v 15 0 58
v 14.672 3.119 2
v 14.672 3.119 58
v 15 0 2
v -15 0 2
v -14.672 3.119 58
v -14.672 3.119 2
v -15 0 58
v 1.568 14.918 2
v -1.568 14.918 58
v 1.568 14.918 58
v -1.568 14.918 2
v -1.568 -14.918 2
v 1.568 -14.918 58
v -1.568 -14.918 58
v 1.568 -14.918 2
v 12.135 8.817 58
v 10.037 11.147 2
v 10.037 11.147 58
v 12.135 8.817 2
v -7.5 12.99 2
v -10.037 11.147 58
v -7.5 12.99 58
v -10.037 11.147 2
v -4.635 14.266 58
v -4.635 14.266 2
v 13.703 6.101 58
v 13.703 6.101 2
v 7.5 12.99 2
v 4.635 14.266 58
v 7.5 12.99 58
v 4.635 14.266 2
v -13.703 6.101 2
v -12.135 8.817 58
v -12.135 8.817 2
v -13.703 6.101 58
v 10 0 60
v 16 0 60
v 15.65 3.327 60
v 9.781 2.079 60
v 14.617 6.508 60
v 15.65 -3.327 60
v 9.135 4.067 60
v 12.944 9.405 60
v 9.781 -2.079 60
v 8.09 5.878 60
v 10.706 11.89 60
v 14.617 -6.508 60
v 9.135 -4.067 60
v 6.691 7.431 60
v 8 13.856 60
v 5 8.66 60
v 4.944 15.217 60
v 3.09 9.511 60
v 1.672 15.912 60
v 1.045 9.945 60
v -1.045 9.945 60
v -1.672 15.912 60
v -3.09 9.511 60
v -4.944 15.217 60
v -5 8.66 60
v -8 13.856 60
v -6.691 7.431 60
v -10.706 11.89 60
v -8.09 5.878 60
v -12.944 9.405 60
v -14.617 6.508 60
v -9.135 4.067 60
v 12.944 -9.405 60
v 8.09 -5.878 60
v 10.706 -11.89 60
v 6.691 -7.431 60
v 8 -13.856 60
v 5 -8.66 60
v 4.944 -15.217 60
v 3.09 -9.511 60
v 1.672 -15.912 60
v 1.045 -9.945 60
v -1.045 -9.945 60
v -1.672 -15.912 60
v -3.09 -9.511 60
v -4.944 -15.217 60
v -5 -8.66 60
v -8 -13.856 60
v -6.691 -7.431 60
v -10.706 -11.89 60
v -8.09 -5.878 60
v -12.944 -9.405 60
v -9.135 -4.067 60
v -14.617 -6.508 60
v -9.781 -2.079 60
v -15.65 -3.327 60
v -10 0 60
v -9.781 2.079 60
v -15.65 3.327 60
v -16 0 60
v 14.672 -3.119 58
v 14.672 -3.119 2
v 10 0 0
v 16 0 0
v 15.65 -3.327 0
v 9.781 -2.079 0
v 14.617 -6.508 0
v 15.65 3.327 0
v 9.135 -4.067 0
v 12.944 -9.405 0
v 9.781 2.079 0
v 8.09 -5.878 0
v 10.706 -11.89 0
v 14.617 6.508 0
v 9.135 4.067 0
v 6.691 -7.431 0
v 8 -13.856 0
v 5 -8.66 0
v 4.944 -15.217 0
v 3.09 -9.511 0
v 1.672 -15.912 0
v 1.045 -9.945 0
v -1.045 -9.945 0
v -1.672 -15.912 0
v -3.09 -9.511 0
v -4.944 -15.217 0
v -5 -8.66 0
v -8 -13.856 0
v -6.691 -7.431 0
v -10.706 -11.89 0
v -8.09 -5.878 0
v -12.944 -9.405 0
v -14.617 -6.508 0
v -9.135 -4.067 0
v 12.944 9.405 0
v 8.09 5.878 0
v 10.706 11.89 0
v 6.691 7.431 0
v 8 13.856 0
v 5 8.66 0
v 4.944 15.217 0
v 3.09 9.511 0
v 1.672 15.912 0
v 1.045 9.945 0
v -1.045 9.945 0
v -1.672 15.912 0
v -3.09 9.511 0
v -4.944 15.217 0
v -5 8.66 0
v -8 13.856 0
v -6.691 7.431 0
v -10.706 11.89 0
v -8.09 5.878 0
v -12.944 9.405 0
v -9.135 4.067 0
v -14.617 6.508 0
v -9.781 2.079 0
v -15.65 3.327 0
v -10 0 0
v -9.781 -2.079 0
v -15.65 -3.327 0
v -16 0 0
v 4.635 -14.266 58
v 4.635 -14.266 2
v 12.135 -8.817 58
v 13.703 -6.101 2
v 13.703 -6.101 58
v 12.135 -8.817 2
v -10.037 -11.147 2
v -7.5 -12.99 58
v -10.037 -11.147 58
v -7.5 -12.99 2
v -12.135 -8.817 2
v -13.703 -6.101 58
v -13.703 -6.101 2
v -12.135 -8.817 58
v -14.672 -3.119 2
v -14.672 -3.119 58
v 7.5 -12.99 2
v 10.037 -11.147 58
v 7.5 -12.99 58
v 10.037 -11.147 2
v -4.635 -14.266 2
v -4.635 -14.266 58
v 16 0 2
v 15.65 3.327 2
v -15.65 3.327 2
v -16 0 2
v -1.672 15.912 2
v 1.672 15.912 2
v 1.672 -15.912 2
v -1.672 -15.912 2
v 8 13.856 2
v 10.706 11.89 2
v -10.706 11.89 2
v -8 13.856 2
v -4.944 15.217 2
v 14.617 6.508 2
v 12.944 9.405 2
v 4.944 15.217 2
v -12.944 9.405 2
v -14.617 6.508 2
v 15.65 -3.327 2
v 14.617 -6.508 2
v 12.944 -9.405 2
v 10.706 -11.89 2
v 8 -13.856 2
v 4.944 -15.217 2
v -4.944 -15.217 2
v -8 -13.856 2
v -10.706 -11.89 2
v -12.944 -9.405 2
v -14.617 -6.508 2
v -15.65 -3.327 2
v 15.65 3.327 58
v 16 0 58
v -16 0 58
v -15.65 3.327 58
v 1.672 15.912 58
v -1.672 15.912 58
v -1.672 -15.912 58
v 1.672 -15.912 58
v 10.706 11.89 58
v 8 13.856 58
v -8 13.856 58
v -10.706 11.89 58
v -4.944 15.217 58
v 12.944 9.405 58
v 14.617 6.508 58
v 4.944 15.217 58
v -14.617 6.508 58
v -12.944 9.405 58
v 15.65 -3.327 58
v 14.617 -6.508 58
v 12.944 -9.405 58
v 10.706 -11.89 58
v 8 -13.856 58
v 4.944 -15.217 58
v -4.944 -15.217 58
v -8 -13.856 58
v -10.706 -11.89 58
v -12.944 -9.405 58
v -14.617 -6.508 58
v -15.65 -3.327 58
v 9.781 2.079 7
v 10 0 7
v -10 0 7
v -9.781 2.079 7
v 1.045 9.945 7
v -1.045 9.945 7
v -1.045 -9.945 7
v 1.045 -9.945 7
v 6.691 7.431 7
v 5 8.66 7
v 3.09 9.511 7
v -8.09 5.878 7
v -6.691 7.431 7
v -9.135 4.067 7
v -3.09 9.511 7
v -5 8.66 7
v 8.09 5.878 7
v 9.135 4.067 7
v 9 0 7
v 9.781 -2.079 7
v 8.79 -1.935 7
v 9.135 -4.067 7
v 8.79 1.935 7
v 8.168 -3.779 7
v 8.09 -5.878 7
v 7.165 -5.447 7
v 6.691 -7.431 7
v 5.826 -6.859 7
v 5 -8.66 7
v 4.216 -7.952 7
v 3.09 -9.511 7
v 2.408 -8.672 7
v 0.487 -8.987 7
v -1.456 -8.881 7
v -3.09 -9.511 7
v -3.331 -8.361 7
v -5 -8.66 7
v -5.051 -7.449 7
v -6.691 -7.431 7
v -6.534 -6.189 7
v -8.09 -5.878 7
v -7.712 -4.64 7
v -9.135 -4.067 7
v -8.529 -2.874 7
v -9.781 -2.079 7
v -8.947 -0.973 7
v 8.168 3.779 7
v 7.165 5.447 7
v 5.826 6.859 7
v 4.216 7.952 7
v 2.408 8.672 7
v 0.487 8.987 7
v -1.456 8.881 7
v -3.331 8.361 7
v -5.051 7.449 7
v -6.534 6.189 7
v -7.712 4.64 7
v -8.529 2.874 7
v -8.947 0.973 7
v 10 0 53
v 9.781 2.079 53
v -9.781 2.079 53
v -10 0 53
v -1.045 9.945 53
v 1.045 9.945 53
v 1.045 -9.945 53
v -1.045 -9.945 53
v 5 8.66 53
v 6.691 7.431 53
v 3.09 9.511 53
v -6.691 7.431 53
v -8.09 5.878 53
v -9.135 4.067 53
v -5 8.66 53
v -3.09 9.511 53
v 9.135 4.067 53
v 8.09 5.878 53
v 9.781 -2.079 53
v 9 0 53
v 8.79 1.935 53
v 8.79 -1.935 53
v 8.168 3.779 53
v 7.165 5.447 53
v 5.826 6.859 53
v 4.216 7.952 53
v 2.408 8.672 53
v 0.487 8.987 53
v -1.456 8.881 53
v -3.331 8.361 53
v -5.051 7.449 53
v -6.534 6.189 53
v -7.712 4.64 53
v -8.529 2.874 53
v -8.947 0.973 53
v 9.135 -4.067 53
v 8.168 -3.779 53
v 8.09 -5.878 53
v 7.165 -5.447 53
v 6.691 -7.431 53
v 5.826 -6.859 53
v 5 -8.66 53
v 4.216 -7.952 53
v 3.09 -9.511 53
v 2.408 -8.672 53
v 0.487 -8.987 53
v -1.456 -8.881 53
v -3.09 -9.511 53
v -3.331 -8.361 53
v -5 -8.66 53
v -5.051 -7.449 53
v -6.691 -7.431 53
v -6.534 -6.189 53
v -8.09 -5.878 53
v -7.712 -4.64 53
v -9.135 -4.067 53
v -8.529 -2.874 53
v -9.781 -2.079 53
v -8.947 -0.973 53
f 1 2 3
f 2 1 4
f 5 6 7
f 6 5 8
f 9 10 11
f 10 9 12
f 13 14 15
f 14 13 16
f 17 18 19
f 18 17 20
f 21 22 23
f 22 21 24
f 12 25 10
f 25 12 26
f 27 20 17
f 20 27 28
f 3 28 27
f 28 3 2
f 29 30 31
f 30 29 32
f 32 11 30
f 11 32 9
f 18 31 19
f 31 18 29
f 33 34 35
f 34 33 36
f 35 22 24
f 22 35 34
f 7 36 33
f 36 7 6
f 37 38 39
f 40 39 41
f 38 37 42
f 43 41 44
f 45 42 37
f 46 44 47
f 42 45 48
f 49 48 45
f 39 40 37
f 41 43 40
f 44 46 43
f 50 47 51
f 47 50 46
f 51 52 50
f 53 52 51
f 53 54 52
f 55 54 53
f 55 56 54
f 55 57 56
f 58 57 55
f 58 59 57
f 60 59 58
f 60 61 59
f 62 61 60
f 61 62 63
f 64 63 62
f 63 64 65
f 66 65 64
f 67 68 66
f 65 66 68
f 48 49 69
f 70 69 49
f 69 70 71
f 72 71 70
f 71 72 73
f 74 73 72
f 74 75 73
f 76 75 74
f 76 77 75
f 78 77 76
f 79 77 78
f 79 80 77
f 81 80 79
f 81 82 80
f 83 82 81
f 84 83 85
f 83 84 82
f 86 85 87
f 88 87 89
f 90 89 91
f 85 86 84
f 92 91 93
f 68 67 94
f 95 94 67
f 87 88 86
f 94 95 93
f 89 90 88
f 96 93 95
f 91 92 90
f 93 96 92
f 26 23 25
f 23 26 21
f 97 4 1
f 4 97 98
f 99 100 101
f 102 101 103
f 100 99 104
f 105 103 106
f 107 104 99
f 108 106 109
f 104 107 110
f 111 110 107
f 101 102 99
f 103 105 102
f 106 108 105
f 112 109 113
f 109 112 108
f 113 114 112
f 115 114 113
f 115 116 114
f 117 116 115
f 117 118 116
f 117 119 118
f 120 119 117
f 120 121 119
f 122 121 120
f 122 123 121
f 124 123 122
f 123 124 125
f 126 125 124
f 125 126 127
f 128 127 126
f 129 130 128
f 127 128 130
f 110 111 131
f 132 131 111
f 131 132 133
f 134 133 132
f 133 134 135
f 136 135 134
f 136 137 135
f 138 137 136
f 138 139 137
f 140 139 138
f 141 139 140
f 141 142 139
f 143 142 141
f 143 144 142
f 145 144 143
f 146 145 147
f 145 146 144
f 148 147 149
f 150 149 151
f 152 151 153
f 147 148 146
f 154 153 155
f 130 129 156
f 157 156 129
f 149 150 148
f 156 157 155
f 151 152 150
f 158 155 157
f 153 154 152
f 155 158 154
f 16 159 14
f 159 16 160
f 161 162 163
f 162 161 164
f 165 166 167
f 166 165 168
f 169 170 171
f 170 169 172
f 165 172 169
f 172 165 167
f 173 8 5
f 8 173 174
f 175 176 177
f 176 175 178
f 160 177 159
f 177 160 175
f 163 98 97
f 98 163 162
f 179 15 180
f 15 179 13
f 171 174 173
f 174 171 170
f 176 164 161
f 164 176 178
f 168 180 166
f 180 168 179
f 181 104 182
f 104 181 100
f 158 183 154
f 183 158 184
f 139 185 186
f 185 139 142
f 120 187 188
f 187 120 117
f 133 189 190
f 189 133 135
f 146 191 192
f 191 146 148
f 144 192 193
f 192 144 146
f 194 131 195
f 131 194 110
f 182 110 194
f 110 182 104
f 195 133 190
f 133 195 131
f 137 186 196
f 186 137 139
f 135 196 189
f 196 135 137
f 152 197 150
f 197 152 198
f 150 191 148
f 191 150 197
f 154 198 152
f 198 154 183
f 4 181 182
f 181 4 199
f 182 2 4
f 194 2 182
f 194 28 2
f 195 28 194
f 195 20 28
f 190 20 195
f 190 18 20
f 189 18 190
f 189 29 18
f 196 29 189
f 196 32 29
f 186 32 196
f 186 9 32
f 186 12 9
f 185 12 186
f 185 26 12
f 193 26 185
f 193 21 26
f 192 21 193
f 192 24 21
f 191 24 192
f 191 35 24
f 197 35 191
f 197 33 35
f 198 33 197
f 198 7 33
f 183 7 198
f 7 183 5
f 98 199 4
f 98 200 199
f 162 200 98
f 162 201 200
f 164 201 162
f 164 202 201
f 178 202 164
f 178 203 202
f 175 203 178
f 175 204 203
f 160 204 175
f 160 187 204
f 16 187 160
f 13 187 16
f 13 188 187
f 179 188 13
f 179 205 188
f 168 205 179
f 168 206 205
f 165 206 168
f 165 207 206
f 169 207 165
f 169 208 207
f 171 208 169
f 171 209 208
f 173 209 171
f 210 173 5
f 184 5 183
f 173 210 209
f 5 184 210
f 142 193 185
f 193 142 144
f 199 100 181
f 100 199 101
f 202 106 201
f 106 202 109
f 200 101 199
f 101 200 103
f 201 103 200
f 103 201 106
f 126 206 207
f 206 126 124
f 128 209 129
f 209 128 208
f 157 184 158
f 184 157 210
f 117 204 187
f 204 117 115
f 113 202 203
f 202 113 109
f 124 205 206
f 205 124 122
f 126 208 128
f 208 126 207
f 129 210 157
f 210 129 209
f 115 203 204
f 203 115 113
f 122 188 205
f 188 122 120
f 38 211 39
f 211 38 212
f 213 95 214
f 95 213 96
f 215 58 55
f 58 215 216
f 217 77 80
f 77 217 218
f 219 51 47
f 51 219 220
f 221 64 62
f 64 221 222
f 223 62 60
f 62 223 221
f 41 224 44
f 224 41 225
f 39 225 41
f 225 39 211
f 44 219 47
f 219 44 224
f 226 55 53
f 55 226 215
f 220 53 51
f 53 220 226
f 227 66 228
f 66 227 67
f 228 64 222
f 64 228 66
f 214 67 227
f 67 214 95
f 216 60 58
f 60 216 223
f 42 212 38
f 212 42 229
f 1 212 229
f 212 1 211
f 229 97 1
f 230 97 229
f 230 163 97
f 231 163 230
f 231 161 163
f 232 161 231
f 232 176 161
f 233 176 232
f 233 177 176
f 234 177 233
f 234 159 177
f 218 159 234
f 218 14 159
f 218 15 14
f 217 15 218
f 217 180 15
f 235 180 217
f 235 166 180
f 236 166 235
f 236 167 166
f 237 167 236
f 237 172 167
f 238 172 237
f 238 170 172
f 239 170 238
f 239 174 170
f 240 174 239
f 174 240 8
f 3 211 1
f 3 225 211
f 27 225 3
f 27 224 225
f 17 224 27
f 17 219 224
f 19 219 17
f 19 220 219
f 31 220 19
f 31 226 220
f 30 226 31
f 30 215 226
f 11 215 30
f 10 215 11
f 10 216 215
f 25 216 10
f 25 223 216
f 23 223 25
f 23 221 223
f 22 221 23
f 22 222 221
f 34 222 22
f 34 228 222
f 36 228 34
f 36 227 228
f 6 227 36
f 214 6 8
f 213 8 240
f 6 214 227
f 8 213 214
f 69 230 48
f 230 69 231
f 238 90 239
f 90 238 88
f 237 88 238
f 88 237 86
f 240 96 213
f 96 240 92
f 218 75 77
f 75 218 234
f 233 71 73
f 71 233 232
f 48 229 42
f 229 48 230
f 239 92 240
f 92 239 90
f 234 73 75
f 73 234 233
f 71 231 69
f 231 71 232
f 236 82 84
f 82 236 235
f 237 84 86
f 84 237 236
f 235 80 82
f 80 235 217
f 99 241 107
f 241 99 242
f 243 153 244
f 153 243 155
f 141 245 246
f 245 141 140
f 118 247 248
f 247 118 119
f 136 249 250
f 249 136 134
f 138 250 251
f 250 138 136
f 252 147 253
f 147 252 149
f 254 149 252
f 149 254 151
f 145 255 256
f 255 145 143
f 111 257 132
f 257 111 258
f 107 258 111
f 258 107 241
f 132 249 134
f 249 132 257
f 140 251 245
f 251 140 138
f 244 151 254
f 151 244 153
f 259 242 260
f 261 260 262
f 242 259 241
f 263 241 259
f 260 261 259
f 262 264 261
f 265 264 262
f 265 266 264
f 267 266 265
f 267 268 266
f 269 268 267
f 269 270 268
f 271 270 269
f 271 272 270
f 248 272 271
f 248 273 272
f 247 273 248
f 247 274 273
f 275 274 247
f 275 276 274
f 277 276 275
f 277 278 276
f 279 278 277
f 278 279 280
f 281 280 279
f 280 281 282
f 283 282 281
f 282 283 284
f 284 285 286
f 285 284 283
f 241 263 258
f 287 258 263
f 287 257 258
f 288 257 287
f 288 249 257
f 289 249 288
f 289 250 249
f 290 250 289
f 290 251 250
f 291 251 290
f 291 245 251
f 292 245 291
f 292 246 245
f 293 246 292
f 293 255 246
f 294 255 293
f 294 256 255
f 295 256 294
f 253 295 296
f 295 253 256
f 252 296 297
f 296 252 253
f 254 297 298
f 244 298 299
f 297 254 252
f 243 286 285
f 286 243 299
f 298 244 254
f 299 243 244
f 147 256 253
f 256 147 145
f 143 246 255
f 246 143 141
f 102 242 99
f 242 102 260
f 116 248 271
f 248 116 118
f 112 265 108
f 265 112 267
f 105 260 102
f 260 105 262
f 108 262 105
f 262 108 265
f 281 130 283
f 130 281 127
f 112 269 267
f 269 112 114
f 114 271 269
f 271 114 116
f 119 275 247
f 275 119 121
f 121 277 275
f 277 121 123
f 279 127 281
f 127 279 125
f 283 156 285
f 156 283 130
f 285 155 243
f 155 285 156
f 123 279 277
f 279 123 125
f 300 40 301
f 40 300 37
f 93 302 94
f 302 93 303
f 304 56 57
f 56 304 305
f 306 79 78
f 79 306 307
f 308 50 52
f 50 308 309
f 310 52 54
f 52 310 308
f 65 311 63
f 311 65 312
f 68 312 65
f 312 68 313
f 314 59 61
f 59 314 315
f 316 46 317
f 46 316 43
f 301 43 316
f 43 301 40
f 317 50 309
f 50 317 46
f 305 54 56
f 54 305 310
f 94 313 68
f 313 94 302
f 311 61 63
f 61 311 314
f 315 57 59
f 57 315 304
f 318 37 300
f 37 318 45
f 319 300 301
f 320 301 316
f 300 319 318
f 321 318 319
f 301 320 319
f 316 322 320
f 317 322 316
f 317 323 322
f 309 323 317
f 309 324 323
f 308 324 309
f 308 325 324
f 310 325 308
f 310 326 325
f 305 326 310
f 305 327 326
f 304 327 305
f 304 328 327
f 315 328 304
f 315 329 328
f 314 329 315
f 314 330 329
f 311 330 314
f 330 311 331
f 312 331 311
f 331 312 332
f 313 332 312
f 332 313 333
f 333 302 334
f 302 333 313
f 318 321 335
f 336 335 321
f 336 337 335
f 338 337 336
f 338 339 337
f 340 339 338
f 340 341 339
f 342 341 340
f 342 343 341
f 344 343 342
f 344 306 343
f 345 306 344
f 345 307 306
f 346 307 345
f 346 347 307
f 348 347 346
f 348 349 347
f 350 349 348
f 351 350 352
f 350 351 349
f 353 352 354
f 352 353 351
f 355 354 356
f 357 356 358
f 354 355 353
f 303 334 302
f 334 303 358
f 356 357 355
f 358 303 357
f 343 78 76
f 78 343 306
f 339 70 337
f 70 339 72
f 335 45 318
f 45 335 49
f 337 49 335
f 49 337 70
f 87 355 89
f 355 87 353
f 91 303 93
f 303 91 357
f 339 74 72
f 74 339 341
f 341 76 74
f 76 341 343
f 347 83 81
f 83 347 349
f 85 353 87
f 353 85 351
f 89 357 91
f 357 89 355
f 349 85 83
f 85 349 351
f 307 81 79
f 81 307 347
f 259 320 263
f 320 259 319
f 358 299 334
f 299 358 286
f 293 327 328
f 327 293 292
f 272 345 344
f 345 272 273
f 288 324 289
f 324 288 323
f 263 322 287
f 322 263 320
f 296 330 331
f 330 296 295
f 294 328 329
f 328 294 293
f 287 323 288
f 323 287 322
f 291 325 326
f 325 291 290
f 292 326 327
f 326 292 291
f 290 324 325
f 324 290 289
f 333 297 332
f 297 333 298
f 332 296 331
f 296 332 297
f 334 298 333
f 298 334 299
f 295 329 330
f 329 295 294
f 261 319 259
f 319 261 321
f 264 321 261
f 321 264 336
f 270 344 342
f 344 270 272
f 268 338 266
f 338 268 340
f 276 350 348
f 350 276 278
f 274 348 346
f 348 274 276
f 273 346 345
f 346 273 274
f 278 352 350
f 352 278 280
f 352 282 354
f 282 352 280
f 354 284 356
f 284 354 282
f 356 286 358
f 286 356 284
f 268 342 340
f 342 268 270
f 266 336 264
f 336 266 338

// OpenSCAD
// Jim Samson
// Spool for rat project 
// November 13, 2018

beltHeight=60; // millimeters
diameterForBelt=30;

diameterForEdgesHeight=beltHeight-58;
diameterForEdges = diameterForBelt + 2;

bearingDiameter=20;
bearingHeight=8;

spoolHolder();

module spoolHolder() {
    union() {
        difference() {
            spool();
            bearings();
            middleShaft();
        }
    }
}

module middleShaft() {
    cylinder(d=bearingDiameter-2,h=beltHeight);
}

module bearings() {
    translate([0,0,-1]) {
        cylinder(d=bearingDiameter,h=bearingHeight);
    }
    
    translate([0,0,beltHeight-bearingHeight+1]) {
        #cylinder(d=bearingDiameter,h=bearingHeight);
    }
}

module spool() {
    cylinder(d=diameterForBelt,h=beltHeight);
    
    cylinder(d=diameterForEdges,h=diameterForEdgesHeight);
    translate([0,0,beltHeight-2]) {
        cylinder(d=diameterForEdges,h=diameterForEdgesHeight);
    }
}
